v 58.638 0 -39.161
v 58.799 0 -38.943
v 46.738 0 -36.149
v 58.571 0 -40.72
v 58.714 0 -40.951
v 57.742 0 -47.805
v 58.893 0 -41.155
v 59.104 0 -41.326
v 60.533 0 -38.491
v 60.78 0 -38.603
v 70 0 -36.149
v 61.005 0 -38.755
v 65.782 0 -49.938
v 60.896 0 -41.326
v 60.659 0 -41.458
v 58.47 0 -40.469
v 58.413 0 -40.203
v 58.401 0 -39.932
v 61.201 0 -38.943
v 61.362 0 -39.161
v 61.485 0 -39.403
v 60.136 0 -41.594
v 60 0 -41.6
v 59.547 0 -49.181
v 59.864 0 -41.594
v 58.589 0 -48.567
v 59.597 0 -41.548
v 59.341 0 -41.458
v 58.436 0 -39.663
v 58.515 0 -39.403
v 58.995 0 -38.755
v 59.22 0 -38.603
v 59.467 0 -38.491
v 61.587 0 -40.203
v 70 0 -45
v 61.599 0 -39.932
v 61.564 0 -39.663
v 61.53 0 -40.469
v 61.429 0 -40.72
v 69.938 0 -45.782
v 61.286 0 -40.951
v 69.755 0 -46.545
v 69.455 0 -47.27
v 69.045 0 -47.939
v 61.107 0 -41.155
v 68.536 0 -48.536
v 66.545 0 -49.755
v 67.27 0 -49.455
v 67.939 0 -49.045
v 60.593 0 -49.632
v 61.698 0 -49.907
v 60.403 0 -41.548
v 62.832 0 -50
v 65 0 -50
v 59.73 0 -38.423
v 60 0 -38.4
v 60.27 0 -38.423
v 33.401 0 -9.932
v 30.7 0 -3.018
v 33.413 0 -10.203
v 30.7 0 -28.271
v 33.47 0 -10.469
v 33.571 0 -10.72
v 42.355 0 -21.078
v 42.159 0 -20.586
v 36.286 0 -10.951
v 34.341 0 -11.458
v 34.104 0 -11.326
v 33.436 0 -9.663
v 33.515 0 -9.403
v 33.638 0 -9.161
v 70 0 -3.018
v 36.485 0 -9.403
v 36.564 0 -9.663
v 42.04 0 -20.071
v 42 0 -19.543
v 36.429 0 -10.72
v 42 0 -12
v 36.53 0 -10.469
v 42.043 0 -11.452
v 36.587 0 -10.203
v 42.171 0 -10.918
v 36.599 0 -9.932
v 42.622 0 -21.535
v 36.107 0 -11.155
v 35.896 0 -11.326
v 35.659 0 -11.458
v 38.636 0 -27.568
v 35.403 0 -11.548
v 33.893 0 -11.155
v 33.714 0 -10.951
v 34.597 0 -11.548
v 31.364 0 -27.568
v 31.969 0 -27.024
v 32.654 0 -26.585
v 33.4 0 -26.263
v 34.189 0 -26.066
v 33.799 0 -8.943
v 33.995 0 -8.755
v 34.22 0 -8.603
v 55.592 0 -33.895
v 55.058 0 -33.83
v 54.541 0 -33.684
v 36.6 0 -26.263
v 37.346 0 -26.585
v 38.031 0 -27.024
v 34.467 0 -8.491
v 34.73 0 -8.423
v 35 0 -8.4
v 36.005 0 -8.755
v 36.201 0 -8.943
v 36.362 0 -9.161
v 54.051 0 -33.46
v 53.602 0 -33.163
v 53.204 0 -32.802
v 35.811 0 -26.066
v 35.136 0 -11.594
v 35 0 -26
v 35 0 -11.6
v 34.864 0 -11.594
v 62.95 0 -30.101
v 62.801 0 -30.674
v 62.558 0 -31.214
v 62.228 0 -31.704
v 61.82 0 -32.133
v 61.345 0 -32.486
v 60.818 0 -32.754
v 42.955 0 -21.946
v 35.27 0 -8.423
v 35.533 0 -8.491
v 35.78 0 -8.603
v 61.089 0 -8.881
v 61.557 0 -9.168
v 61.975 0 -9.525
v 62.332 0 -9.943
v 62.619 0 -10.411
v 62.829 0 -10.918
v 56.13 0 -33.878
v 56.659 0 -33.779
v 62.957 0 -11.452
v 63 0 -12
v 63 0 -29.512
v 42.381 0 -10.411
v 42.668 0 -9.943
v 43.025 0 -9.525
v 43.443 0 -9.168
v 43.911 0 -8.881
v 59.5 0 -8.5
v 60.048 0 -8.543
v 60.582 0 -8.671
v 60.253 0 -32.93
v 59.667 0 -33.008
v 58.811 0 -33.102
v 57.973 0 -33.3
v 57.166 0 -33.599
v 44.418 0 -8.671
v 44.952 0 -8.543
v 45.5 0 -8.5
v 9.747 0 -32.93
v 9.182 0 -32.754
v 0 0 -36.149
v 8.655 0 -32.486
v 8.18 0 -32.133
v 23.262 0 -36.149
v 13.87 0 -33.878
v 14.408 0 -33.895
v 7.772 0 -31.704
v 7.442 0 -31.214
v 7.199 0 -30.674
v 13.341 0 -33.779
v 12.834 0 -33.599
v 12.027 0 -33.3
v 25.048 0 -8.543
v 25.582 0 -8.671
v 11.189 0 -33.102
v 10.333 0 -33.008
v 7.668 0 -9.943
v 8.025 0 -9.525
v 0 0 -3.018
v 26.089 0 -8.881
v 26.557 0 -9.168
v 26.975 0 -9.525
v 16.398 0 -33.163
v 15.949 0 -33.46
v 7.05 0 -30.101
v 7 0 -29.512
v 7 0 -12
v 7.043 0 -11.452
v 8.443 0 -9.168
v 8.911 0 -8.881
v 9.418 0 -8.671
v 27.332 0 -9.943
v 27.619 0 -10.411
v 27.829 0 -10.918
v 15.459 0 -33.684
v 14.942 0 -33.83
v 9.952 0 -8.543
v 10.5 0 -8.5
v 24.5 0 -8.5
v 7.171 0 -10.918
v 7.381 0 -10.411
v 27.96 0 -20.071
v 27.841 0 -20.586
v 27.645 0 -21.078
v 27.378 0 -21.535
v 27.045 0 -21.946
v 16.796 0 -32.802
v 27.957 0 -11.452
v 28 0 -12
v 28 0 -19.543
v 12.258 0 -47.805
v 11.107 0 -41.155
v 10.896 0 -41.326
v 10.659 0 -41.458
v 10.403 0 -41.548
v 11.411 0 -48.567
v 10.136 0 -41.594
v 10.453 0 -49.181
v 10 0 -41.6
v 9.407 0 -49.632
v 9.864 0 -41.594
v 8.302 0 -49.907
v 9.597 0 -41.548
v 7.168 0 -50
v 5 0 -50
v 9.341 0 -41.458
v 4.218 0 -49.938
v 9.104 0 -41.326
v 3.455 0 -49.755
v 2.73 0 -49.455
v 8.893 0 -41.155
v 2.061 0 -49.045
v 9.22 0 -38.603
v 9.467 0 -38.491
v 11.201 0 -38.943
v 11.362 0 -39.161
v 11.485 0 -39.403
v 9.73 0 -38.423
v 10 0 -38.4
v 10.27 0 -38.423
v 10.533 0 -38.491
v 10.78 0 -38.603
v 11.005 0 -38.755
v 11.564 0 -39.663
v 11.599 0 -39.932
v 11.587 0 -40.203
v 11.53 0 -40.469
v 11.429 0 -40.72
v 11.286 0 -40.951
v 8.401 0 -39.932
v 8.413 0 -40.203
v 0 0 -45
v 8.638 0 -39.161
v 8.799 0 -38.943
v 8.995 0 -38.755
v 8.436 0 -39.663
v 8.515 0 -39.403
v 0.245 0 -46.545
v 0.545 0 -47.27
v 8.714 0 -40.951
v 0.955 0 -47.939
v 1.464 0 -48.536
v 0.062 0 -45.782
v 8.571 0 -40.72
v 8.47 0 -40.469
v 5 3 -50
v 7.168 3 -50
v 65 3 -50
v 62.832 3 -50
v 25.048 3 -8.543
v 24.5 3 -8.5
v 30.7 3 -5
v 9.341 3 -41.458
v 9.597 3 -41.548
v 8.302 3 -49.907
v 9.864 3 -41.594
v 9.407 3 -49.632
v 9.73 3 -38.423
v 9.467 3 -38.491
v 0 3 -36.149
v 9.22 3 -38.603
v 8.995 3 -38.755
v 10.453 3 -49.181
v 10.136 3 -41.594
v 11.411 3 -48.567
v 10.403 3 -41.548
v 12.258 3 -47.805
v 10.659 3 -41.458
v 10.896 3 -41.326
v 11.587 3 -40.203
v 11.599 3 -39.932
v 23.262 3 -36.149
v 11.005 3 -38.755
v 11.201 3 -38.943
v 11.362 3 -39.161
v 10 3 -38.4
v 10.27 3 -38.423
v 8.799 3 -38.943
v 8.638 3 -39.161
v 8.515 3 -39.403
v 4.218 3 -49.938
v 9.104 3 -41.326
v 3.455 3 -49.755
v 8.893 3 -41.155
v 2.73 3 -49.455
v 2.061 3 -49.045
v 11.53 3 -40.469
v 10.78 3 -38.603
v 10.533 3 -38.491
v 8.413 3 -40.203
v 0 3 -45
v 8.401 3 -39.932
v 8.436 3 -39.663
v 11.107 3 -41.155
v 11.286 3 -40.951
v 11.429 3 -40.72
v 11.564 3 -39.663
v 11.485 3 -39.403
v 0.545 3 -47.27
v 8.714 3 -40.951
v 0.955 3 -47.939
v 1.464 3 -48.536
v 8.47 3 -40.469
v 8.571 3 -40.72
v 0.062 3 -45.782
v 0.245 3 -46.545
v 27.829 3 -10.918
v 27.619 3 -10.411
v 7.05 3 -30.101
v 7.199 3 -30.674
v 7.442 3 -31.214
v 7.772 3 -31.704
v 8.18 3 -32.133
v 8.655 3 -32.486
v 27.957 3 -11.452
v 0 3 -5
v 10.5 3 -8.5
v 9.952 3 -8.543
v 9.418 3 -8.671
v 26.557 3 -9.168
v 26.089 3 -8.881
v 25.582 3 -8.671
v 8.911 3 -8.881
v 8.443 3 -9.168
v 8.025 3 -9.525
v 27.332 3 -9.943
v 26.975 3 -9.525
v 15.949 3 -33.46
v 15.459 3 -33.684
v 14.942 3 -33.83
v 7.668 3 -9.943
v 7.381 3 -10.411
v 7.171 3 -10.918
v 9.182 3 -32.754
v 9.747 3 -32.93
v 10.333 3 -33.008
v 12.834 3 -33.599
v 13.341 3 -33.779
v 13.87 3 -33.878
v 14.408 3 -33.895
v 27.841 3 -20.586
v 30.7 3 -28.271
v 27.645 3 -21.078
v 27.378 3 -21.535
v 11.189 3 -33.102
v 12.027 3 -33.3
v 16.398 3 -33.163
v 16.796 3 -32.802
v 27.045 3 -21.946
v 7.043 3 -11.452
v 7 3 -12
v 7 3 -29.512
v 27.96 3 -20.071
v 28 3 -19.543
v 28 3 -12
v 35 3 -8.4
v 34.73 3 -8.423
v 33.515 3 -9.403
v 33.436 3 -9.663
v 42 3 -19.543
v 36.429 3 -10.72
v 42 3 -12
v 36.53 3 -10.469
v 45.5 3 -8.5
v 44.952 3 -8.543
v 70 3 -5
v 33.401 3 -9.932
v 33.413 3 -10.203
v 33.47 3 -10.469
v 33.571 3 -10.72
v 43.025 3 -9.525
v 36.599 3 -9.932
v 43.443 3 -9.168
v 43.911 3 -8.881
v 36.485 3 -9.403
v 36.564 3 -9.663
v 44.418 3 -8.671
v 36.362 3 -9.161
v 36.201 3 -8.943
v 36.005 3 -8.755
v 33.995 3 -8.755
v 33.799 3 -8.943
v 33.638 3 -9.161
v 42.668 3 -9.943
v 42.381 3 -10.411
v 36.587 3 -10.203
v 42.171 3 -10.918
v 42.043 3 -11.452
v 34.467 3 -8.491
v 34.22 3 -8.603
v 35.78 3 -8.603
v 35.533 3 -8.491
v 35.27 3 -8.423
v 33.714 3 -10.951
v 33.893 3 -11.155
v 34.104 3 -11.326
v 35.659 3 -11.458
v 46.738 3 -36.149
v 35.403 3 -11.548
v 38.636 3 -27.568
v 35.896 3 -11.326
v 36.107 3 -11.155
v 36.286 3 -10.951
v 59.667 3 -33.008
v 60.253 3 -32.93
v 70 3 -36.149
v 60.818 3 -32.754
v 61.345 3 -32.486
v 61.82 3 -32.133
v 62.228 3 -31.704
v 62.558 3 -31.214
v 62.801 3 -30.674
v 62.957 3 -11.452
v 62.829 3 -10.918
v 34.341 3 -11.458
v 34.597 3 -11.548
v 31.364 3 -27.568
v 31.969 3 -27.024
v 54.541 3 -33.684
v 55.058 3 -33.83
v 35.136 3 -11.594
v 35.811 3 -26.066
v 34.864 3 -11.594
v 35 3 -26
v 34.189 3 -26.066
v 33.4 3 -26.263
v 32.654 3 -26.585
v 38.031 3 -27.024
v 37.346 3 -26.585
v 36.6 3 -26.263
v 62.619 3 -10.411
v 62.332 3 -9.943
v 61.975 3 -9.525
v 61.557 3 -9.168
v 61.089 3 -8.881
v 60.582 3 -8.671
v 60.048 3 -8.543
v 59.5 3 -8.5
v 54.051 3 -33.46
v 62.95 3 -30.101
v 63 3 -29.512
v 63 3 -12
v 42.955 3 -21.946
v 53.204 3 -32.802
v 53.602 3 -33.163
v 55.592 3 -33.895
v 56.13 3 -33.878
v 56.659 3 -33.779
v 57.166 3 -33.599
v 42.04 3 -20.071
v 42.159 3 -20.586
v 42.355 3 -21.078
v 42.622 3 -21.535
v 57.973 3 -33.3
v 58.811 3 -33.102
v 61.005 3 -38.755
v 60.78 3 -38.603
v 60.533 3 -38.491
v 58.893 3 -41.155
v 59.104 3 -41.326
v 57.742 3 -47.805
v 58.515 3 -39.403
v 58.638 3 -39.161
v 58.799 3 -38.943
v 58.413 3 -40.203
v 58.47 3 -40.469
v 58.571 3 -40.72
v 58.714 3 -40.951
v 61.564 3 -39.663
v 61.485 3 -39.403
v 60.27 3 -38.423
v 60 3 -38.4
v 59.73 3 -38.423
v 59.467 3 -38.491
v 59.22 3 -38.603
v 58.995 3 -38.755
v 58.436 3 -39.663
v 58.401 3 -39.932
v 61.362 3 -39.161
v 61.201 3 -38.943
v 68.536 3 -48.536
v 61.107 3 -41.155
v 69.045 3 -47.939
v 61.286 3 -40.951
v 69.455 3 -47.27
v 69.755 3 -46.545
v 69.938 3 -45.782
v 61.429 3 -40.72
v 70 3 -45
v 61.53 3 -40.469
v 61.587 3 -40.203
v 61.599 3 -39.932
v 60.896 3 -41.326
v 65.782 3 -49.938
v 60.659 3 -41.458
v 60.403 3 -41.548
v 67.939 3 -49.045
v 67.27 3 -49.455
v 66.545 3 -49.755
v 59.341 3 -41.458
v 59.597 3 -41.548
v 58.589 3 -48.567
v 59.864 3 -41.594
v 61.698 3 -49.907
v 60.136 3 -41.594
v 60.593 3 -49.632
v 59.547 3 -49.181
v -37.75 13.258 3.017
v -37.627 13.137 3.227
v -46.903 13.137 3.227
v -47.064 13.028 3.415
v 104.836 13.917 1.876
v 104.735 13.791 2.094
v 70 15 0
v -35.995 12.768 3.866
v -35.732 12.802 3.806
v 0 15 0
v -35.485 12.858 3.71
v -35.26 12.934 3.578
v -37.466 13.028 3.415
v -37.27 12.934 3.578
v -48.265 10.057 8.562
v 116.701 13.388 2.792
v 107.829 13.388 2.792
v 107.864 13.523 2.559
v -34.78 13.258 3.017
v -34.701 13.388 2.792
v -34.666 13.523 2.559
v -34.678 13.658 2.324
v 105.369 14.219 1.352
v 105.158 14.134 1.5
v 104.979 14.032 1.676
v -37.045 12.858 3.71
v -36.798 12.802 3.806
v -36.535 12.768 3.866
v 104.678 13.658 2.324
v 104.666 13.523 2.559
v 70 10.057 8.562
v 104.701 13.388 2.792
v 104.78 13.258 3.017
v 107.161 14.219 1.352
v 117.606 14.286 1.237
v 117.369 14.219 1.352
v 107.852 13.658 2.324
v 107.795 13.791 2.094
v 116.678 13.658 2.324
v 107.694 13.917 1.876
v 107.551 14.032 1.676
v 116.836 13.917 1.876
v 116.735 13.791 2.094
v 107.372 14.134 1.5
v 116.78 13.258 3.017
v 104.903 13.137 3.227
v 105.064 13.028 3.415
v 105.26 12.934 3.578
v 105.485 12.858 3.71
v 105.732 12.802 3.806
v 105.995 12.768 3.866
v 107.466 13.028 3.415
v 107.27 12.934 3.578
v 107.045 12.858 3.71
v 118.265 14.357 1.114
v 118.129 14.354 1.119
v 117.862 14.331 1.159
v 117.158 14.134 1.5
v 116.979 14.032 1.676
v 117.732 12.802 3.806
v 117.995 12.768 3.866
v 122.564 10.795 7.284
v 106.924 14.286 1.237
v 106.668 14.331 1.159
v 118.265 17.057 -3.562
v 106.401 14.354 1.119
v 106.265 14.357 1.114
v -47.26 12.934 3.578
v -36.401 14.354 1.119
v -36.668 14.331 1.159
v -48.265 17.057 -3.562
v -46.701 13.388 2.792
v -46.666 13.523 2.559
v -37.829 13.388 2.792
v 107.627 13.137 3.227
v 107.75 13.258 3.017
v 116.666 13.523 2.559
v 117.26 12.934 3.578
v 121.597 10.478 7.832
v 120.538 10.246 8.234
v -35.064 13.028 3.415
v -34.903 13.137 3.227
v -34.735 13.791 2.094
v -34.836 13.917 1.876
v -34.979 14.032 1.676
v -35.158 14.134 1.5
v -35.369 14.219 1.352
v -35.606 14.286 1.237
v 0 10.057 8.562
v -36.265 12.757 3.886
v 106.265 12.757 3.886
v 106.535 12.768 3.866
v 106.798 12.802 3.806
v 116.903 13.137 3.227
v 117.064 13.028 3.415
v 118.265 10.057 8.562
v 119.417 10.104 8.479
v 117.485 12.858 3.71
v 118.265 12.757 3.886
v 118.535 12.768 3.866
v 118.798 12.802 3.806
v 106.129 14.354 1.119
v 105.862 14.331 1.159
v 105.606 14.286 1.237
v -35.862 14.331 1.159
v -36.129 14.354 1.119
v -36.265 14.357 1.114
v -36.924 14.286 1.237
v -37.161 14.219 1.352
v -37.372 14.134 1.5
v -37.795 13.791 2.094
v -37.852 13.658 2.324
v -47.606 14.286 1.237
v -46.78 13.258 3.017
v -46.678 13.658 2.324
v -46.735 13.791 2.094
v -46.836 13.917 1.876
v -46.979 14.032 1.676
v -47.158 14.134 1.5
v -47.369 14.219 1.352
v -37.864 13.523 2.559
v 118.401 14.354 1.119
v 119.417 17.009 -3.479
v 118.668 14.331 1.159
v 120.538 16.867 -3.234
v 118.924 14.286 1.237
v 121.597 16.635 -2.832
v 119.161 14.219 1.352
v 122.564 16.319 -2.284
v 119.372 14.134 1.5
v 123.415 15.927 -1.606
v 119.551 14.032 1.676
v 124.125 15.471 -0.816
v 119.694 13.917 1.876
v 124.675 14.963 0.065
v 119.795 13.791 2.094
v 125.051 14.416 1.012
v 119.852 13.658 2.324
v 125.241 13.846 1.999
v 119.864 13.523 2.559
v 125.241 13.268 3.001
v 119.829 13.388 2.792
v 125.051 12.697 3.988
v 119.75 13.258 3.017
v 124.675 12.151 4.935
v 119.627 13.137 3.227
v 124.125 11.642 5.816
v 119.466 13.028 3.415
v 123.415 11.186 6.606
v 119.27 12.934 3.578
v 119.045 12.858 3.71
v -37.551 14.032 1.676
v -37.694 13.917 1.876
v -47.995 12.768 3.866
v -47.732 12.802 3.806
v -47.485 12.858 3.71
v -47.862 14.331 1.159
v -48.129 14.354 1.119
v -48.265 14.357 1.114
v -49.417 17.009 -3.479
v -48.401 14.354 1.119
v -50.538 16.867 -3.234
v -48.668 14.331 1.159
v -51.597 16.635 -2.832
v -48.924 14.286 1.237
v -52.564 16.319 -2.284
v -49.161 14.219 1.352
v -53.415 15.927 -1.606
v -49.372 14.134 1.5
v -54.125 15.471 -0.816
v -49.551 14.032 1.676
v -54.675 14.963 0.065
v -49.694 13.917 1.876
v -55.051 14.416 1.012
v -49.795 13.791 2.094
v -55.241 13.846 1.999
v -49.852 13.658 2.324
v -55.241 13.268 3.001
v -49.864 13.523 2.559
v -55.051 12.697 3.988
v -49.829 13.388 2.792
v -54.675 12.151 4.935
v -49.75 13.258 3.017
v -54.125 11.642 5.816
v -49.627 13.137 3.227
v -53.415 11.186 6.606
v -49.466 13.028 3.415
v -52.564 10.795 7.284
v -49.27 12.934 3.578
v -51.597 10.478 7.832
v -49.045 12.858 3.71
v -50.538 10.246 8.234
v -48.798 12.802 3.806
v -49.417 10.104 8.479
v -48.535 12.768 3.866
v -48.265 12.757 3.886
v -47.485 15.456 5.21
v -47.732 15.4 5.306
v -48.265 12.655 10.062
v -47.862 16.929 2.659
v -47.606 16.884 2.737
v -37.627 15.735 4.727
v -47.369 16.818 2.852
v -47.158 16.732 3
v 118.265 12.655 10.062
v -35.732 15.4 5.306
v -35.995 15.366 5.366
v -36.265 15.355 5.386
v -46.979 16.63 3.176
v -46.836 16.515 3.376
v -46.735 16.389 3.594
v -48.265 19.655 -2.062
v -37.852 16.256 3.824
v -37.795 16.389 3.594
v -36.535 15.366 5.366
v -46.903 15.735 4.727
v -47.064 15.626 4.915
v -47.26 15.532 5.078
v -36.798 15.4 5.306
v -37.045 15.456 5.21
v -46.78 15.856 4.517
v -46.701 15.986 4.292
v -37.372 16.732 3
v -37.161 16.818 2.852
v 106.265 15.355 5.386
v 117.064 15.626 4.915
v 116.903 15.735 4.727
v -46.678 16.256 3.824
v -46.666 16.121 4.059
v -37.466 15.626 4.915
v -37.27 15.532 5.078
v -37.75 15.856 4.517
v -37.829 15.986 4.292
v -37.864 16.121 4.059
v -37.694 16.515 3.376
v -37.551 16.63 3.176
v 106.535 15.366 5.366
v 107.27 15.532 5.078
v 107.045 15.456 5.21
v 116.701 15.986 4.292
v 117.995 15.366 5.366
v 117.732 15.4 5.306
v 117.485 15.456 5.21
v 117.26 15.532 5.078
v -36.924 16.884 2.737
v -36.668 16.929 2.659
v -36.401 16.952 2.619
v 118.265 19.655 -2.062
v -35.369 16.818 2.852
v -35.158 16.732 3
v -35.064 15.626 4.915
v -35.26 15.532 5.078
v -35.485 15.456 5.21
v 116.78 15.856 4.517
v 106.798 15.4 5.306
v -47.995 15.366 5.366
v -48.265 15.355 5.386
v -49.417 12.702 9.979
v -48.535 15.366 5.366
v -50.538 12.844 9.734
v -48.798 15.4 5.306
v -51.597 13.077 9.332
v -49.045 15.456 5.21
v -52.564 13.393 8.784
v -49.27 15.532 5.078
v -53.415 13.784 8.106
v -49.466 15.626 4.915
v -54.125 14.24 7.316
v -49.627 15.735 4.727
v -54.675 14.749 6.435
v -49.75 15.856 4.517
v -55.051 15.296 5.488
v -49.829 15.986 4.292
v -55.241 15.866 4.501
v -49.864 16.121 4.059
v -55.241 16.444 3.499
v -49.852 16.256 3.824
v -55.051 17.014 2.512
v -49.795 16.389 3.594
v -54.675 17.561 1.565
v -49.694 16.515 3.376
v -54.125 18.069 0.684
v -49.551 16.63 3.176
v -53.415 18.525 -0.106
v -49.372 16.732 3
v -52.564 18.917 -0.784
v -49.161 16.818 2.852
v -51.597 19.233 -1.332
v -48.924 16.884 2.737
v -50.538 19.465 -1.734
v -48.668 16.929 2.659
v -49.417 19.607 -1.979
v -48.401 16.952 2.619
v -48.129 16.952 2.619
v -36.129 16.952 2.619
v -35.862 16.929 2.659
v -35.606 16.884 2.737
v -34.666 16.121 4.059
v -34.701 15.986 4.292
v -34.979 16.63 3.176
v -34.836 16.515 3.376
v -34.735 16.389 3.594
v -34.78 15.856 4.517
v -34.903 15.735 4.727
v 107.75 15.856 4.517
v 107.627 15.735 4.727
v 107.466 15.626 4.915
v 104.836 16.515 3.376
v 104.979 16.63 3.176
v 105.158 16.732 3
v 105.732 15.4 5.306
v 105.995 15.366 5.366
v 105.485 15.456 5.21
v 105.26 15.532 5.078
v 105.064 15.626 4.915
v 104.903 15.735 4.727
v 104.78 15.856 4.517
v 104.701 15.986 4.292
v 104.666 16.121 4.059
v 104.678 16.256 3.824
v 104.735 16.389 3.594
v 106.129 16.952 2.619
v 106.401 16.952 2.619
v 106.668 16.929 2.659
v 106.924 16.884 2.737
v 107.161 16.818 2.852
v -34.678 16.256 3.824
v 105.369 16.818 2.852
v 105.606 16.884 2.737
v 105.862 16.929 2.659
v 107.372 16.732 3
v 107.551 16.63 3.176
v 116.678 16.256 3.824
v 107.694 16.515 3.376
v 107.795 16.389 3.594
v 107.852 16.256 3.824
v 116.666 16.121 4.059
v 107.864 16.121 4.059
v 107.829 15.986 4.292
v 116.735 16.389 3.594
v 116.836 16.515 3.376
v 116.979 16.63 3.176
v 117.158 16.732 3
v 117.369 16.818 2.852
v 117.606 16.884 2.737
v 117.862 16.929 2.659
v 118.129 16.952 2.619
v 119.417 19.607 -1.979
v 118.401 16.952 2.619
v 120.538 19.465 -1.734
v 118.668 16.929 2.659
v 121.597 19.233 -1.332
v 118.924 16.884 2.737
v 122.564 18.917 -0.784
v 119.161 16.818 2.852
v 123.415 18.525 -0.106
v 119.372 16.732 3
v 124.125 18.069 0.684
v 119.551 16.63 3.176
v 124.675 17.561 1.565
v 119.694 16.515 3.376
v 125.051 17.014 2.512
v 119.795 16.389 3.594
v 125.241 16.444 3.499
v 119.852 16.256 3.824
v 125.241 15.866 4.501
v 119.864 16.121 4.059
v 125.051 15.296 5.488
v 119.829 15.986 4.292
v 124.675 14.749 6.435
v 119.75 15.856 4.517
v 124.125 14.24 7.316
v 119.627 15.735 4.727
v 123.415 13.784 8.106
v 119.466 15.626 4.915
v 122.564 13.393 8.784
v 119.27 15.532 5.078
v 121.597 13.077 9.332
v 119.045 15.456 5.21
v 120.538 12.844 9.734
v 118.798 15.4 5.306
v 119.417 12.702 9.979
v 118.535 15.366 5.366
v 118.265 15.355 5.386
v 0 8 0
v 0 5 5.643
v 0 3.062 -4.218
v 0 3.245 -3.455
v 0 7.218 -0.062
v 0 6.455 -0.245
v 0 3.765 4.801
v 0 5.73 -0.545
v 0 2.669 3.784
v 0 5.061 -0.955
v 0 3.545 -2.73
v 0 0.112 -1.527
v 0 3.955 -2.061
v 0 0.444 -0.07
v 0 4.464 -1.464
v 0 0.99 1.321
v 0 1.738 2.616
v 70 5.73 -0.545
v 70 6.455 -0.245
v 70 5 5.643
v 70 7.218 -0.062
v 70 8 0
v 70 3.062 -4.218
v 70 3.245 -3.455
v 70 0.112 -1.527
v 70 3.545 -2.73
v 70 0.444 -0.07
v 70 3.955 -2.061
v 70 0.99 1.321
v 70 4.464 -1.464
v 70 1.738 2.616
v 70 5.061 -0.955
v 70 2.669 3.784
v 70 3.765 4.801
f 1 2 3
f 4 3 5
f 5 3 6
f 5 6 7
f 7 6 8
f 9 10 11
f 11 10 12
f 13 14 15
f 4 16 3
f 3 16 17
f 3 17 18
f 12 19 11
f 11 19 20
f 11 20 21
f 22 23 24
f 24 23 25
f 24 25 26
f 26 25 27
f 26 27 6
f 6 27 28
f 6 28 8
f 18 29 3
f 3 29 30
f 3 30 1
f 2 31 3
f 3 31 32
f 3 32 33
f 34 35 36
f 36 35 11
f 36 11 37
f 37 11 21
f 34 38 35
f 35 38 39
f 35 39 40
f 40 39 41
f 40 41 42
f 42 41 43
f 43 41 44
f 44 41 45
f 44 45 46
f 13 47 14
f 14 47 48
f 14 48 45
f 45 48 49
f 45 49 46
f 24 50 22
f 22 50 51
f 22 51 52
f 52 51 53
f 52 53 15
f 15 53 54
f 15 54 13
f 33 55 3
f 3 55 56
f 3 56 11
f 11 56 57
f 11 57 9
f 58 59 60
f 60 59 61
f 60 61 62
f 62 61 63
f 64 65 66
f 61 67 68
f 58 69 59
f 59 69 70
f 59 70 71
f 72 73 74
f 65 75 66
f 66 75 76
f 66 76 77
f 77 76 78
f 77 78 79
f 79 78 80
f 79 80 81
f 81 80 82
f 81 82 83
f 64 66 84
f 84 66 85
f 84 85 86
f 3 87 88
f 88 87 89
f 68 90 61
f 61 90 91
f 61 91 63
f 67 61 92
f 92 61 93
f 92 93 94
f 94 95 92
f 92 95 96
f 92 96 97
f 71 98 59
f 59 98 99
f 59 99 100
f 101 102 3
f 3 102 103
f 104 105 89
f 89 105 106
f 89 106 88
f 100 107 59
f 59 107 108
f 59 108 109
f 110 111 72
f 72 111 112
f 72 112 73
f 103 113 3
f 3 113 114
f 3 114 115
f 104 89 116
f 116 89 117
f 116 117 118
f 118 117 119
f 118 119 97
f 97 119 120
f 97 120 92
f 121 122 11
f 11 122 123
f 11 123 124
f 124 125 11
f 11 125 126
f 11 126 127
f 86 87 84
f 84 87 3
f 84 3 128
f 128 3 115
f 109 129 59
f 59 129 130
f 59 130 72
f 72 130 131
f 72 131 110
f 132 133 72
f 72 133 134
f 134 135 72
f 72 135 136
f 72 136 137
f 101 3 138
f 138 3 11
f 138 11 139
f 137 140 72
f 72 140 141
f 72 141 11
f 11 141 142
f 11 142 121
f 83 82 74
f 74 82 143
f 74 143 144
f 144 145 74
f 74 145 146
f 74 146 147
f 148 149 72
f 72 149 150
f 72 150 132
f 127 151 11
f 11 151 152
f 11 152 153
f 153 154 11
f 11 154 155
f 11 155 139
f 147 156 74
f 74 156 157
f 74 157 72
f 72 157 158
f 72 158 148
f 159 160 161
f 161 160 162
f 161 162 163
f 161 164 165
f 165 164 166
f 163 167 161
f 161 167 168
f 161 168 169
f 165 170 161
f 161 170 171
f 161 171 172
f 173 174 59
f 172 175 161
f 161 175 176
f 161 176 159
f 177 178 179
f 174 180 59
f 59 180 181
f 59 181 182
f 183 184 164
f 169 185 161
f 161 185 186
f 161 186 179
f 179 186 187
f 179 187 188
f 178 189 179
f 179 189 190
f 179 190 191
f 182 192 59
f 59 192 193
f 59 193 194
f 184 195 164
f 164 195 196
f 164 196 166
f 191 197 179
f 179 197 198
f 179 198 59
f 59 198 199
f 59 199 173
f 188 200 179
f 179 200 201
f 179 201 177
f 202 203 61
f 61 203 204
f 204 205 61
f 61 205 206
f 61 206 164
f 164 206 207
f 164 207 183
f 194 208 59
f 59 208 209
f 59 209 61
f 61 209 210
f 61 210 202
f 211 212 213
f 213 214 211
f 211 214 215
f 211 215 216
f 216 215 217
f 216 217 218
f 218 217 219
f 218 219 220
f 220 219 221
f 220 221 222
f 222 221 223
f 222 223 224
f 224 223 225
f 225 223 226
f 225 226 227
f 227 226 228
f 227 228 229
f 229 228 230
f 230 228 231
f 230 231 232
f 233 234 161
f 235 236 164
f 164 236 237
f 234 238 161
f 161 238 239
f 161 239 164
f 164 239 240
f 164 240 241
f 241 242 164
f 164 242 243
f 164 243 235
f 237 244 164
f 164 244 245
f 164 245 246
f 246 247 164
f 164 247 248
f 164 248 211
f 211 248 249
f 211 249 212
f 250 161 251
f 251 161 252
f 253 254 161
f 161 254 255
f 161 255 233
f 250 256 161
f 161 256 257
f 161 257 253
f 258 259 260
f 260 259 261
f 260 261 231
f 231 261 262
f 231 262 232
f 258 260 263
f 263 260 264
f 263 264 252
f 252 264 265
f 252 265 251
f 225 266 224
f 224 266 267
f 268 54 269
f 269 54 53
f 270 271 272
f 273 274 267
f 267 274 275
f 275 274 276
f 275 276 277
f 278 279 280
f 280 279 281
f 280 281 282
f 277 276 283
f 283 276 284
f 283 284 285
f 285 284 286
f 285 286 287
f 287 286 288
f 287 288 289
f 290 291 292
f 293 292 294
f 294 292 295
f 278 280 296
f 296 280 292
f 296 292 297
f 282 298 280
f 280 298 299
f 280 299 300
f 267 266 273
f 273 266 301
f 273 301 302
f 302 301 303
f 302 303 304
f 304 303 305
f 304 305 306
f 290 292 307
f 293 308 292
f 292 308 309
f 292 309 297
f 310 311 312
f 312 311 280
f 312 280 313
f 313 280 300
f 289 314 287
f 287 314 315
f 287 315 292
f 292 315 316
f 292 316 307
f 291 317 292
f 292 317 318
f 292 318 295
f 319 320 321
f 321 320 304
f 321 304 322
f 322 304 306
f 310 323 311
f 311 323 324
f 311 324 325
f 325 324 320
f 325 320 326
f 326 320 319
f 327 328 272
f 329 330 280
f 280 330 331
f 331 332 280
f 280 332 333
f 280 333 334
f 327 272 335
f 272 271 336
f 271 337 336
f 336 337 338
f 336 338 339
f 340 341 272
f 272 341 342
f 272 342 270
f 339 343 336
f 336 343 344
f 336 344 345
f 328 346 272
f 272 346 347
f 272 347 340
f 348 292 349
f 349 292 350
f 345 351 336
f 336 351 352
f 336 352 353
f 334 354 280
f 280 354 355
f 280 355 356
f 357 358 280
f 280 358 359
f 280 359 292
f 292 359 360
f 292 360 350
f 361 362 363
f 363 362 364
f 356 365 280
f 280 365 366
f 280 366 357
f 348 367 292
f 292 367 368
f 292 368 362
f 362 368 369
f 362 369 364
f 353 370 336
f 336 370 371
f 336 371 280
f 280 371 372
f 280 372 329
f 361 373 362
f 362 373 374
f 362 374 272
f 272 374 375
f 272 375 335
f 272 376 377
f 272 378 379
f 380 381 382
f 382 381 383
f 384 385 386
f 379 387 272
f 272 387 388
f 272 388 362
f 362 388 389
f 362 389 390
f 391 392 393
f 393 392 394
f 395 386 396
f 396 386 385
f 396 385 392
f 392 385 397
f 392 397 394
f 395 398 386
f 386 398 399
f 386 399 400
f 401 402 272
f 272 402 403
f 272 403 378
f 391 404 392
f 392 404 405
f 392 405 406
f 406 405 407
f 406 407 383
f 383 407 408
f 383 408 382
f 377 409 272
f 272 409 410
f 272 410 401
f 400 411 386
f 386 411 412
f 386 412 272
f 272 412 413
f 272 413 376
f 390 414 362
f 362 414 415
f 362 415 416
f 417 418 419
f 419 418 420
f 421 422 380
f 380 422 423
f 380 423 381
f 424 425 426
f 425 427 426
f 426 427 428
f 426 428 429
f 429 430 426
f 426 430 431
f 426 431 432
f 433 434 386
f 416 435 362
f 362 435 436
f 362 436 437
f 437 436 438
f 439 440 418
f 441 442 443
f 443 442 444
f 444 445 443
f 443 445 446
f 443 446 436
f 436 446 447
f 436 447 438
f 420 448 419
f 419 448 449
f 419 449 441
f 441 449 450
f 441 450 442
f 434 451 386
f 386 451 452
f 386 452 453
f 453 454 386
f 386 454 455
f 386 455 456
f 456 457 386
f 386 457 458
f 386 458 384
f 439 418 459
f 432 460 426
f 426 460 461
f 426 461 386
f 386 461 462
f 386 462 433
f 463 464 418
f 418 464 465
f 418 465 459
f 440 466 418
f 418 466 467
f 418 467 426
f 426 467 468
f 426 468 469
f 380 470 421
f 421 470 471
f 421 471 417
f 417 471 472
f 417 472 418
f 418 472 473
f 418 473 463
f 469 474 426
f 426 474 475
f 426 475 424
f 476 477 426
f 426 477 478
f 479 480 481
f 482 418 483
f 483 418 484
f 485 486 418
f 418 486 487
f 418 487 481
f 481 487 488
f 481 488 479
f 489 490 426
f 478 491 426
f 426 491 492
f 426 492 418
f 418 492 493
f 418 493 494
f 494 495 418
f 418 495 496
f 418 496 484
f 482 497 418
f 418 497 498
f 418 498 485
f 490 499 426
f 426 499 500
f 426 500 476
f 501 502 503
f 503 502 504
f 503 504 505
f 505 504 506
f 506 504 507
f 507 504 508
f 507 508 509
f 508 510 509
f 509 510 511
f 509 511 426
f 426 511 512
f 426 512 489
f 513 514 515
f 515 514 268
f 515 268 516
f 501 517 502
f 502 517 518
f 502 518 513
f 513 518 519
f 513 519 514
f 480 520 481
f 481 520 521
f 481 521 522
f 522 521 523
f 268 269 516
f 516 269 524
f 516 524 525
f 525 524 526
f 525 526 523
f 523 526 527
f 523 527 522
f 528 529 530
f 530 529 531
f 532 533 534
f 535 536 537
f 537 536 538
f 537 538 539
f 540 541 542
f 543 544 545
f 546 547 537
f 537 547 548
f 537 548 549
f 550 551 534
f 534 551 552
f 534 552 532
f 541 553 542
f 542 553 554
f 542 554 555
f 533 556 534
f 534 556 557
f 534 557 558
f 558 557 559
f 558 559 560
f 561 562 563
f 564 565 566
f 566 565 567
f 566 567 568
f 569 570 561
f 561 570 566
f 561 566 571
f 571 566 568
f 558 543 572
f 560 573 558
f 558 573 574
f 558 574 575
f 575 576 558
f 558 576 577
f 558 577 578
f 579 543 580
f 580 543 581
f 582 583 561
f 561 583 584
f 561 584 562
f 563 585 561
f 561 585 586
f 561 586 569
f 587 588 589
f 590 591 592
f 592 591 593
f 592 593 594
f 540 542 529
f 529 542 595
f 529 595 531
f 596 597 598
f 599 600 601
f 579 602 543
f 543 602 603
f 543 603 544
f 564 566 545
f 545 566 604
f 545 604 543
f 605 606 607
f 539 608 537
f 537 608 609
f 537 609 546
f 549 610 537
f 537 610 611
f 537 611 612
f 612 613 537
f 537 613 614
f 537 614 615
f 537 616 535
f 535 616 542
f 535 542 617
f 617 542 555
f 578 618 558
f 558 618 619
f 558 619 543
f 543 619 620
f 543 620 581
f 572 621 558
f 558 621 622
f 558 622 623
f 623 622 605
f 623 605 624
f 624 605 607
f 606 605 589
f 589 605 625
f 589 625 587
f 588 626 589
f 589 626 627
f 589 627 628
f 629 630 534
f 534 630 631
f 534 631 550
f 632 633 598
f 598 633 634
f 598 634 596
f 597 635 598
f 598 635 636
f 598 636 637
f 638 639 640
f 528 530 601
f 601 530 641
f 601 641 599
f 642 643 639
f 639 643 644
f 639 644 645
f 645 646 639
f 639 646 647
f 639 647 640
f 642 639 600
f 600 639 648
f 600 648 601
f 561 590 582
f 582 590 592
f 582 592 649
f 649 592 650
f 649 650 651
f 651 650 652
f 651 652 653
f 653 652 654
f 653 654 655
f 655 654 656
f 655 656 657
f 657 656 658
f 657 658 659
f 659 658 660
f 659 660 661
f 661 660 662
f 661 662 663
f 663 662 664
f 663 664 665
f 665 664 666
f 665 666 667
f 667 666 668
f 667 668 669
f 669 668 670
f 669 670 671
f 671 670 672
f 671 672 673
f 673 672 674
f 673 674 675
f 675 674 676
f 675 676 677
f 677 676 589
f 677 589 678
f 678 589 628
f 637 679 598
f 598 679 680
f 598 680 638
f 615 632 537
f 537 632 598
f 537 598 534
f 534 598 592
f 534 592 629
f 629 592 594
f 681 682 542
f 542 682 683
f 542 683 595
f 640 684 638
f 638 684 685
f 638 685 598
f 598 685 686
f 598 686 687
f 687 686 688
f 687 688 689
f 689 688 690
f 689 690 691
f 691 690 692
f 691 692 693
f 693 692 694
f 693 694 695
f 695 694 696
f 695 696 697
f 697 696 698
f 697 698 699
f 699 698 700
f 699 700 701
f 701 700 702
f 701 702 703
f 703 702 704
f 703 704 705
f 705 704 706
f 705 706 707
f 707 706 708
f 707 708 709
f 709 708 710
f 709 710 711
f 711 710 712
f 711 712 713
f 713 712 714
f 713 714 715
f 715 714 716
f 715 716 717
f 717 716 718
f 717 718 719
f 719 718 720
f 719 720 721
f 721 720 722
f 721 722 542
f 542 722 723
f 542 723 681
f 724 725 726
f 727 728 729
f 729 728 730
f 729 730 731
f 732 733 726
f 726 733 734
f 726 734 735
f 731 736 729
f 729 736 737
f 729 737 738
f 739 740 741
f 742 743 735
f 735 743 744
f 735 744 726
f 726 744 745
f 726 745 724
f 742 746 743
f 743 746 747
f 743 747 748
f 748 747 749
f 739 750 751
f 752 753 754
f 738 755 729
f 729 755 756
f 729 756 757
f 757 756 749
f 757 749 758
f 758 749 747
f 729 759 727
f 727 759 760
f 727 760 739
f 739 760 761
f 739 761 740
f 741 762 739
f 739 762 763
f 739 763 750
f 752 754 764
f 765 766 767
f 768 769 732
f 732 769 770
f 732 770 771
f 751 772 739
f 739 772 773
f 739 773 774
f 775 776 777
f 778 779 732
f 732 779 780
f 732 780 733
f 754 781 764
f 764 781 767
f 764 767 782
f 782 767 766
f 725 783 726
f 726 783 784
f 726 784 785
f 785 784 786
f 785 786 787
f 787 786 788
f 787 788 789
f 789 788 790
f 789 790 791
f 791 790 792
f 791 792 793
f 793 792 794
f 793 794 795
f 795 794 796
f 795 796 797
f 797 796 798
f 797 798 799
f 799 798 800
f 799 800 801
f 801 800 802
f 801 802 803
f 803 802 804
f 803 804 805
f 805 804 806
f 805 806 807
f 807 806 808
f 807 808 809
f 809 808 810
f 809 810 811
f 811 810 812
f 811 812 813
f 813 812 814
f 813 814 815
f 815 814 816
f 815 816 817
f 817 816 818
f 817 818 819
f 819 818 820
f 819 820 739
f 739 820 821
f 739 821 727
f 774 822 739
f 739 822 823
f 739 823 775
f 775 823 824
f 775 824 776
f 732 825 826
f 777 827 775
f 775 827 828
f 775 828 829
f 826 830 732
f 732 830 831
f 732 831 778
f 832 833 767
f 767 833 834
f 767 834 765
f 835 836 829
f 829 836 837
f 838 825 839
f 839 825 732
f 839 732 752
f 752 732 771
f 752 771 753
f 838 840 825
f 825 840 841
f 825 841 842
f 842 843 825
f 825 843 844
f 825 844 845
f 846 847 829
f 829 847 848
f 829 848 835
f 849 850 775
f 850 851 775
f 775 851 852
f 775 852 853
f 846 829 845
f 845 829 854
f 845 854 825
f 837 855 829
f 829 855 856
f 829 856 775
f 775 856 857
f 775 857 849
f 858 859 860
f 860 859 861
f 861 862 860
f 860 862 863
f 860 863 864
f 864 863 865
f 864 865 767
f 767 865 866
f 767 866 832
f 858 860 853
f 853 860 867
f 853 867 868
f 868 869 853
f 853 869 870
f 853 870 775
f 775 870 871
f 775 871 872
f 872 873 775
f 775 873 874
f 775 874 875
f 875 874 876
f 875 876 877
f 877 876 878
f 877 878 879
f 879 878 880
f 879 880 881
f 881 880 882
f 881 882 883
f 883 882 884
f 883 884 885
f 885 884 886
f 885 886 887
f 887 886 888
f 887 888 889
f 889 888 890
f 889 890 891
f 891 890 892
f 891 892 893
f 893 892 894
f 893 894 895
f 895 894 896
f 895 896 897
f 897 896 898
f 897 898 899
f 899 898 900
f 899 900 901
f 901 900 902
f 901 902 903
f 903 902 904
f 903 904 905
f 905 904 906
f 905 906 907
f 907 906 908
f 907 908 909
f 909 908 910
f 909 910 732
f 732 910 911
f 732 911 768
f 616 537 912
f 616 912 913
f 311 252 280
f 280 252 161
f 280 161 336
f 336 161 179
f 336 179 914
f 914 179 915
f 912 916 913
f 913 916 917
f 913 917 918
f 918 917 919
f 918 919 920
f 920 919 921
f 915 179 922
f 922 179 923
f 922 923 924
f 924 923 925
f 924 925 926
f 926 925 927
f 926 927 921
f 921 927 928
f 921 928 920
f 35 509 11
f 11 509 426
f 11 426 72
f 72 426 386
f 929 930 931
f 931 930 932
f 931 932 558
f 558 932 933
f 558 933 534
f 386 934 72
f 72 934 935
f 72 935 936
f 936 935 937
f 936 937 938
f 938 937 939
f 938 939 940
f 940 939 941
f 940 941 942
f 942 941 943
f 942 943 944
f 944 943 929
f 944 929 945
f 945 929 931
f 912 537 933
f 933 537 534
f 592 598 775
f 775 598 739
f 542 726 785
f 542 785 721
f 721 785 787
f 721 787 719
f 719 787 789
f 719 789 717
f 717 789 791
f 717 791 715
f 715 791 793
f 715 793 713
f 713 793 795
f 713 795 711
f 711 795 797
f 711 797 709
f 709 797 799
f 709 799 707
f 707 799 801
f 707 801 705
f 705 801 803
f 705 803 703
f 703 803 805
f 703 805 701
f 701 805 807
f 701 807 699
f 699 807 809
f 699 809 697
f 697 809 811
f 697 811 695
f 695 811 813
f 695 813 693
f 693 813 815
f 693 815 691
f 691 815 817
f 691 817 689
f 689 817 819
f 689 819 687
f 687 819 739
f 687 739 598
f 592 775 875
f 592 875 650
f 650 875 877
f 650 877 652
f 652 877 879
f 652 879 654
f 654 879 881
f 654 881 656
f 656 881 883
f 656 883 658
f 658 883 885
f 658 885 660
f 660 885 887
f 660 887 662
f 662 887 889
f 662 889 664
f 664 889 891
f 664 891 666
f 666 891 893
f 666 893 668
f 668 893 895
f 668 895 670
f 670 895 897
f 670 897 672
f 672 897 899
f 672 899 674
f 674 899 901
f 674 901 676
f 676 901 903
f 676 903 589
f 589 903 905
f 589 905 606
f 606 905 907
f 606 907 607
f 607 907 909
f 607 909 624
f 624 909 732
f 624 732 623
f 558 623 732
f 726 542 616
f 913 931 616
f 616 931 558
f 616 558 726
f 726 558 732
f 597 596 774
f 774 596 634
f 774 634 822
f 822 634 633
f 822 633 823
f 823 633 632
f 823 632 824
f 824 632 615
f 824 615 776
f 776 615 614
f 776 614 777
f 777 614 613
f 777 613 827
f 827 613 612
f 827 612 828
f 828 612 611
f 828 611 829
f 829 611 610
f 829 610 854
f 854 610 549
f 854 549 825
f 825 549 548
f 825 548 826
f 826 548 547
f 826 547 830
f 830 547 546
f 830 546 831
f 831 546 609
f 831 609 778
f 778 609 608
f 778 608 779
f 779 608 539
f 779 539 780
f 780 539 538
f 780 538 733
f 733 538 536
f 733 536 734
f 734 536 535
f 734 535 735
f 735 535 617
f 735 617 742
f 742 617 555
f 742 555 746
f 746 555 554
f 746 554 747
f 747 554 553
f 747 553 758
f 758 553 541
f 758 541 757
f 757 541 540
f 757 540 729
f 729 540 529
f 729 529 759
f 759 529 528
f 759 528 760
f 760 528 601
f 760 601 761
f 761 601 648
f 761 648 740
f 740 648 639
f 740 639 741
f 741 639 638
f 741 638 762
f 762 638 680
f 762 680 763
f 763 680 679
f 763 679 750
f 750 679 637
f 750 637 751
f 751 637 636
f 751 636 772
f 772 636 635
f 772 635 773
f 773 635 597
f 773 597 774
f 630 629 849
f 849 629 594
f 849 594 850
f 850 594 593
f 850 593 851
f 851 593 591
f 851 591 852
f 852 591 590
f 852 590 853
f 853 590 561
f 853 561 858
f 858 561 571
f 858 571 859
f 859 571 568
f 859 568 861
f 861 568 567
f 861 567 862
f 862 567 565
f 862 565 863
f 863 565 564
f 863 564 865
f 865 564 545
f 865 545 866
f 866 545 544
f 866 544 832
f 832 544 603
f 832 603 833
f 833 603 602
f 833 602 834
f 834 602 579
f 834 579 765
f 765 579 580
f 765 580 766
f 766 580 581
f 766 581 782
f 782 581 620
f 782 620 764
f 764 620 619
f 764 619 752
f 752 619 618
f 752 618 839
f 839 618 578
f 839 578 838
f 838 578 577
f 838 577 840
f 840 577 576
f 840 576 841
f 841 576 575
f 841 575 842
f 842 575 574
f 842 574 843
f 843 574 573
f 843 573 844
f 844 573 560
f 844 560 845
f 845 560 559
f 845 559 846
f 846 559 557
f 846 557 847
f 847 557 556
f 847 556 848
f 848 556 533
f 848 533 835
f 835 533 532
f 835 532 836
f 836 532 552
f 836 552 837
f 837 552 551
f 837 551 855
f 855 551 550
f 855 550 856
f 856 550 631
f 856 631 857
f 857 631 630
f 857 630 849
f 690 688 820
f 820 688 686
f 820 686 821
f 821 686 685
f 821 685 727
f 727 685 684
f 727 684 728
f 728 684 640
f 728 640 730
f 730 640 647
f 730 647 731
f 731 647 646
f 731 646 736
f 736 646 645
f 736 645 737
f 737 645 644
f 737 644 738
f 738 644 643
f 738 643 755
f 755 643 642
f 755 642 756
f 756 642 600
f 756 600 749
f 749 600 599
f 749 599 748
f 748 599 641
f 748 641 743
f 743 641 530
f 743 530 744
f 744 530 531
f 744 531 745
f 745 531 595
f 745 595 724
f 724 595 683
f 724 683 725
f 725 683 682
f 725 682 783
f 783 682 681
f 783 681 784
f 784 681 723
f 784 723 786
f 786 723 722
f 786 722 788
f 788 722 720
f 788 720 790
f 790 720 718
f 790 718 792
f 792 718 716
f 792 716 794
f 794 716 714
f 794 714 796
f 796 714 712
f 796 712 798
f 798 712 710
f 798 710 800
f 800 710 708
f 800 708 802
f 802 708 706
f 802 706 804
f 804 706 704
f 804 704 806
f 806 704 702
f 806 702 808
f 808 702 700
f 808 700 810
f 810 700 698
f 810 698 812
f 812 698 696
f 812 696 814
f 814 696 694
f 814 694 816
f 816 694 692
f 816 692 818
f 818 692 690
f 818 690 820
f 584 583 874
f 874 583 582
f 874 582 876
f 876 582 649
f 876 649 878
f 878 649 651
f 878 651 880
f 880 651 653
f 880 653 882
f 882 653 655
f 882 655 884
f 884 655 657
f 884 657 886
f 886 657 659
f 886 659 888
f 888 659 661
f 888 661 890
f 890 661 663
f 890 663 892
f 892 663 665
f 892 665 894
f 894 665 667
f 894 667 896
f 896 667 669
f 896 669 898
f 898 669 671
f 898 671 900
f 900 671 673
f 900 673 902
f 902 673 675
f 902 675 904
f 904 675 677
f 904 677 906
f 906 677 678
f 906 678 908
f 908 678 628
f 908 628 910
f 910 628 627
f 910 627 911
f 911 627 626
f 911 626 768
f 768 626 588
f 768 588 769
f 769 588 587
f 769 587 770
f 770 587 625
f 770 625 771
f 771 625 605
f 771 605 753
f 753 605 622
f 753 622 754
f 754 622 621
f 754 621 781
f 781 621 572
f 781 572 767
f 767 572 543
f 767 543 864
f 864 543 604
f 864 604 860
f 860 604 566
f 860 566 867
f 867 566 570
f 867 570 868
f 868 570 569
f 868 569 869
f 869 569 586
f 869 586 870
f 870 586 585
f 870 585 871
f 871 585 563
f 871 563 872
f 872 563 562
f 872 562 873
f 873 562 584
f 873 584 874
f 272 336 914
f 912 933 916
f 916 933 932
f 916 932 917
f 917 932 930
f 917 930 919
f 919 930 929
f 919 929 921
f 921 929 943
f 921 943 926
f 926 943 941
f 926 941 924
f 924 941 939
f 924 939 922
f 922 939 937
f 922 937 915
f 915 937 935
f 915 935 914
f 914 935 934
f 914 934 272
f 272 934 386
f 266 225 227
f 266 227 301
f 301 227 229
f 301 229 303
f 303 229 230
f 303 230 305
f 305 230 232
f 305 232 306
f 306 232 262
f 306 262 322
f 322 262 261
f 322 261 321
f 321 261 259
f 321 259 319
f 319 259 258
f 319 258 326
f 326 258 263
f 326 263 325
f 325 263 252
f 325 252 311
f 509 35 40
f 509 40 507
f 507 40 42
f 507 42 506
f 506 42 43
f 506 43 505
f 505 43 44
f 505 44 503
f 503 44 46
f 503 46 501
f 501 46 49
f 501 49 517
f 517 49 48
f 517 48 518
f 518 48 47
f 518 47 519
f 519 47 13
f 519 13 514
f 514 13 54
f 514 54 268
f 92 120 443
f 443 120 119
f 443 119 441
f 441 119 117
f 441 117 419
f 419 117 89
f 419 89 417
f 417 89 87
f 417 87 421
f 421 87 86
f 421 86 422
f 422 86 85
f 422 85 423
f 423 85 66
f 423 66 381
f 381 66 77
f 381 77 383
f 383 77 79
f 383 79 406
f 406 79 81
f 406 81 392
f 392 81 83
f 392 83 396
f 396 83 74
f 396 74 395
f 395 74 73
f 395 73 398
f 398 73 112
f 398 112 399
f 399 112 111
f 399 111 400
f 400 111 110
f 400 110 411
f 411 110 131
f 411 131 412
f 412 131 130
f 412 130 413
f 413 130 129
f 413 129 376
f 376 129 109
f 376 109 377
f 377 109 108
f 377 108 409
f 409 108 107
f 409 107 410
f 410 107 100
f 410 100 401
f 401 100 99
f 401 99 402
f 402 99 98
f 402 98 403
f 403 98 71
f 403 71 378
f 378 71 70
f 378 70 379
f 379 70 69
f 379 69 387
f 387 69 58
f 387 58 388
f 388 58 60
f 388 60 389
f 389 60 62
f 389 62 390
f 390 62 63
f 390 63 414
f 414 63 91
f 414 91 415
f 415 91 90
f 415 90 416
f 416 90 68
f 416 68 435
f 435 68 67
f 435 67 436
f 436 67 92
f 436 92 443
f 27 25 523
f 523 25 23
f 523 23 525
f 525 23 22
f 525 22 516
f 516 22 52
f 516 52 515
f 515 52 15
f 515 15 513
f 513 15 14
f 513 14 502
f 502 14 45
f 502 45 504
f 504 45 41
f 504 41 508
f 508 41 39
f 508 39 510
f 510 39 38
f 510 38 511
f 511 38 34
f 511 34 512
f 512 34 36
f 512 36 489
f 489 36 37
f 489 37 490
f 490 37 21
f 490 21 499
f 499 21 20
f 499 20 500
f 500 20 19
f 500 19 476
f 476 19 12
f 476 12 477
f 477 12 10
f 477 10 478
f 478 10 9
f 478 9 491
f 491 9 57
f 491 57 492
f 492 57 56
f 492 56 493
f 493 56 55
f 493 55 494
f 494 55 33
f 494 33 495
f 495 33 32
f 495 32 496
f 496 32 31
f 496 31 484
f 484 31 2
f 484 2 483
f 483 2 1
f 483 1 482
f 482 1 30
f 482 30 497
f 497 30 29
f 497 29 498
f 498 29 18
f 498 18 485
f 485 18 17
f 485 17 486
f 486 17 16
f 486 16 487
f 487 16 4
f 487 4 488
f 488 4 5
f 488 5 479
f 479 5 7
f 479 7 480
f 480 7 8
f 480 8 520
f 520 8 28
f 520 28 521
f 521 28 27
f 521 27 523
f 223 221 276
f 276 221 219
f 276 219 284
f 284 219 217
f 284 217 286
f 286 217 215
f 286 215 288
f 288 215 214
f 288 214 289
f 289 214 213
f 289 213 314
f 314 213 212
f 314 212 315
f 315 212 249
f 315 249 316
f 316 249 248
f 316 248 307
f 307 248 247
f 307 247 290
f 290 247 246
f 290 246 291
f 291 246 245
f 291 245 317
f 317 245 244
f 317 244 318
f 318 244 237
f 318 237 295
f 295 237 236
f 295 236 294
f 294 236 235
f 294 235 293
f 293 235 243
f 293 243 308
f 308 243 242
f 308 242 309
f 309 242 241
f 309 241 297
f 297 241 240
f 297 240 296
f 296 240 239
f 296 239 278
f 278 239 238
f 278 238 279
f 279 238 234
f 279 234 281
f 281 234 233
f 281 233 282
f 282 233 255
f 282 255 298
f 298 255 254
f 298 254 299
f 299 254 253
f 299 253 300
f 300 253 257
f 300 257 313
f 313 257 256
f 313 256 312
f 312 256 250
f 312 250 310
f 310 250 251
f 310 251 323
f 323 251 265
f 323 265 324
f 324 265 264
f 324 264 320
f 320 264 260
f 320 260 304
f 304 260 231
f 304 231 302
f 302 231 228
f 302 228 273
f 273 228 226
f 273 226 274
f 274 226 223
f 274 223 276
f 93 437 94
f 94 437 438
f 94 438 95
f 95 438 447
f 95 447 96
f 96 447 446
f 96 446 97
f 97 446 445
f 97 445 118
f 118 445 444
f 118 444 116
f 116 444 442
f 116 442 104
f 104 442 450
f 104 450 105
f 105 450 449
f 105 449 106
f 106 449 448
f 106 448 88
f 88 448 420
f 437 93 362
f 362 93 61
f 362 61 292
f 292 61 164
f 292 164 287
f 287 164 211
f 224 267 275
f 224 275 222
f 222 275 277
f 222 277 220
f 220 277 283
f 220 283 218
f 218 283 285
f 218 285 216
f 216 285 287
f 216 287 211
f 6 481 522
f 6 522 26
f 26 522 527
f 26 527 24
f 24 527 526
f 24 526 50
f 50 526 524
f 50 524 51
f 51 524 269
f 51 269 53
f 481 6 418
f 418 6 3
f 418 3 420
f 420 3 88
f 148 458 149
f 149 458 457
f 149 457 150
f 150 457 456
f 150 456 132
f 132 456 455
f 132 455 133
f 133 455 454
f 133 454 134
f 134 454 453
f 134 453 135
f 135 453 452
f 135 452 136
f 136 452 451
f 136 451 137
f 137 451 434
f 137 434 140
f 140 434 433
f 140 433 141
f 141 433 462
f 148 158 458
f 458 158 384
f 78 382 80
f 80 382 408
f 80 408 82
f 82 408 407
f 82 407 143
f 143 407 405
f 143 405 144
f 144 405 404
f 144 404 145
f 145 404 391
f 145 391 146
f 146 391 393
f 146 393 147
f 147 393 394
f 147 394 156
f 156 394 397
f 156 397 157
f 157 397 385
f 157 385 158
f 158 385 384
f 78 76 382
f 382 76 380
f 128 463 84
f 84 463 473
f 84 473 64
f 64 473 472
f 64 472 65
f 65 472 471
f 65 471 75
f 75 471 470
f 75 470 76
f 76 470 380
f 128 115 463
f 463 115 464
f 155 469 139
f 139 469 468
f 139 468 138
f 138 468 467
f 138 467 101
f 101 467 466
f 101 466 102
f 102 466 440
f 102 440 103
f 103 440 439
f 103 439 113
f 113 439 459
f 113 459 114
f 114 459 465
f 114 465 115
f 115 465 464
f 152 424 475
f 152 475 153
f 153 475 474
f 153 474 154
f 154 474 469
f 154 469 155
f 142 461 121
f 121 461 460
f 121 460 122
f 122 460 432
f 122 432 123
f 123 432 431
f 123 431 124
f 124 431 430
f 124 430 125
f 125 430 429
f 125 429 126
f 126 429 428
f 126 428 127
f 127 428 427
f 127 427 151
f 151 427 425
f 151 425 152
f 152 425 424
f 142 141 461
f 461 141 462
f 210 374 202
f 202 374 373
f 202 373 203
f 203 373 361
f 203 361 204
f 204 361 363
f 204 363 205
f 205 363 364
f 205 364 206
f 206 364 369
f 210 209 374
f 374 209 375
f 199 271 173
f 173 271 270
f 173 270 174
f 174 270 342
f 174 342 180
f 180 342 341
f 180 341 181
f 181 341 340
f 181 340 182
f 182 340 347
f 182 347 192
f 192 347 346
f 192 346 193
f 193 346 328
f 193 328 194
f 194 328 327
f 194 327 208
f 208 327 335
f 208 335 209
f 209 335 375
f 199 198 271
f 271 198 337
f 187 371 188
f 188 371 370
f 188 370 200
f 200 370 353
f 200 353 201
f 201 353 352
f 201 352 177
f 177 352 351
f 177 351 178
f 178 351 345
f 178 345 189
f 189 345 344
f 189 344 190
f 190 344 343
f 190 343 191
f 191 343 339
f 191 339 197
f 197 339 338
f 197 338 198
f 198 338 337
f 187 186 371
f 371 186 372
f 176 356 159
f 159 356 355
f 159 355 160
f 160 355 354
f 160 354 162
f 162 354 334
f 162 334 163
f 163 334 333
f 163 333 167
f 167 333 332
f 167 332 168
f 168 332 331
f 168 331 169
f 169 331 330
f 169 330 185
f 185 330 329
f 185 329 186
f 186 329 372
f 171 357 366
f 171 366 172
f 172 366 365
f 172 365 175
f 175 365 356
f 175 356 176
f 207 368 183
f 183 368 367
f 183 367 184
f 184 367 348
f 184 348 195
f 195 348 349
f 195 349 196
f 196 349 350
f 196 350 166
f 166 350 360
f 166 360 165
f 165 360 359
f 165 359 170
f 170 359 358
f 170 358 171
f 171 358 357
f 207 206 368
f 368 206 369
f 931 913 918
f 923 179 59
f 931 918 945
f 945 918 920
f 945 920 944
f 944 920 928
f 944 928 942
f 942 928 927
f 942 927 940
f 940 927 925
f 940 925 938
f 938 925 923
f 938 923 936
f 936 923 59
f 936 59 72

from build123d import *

# Parameters (mm, degrees)
SKETCH_1_W          = 70
SKETCH_1_H          = 50
EXTRUDE_1_DEPTH     = 3
EXTRUDE_2_DEPTH     = 70
SKETCH_3_R          = 1.6
EXTRUDE_3_DEPTH     = 3
EXTRUDE_4_REACH     = 139.875
SKETCH_4_W          = 70
SKETCH_4_H          = 5.267949192
FILLET_1_R          = 5
SKETCH_5_W          = 70
SKETCH_5_H          = 28.866025404
CUT_EXTRUDE_1_DEPTH = 138.47436204
SKETCH_6_W          = 70
SKETCH_6_H          = 3
CUT_EXTRUDE_2_DEPTH = 133.365261865
FILLET_2_R          = 5
SKETCH_7_R          = 1.6
CUT_EXTRUDE_3_DEPTH = 10
CUT_EXTRUDE_4_DEPTH = 10
CUT_EXTRUDE_5_DEPTH = 136.899592623
FILLET_4_R          = 10


with BuildPart() as part:
    # 草图1 → 凸台-拉伸1 (new body)
    with BuildSketch(Plane(origin=(0, 0, 0), x_dir=(1, 0, 0), z_dir=(0, 1, 0))):
        with Locations((35, 25)):
            Rectangle(SKETCH_1_W, SKETCH_1_H)
    extrude(amount=EXTRUDE_1_DEPTH)

    # 草图2 → 凸台-拉伸2 (add)
    with BuildSketch(Plane.ZY):
        Polygon((0, 15), (-6.062177826, 18.5), (-4.562177826, 21.098076211), (4, 16.154700538), (4, 15), (4, 0), (0, 0), align=None)
    extrude(amount=-EXTRUDE_2_DEPTH)

    # 草图3 → 凸台-拉伸3 (add)
    with BuildSketch(Plane(origin=(0, 13.848076211, 7.995190528), x_dir=(1, 0, 0), z_dir=(0, 0.86602540378444, 0.49999999999999784))):
        with BuildLine():
            Line((-48.265, 11.613248654), (-36.265, 11.613248654))
            Line((-36.265, 11.613248654), (106.265, 11.613248654))
            Line((106.265, 11.613248654), (118.265, 11.613248654))
            ThreePointArc((118.265, 11.613248654), (125.265, 4.613248654), (118.265, -2.386751346))
            Line((118.265, -2.386751346), (106.265, -2.386751346))
            Line((106.265, -2.386751346), (-36.265, -2.386751346))
            Line((-36.265, -2.386751346), (-48.265, -2.386751346))
            ThreePointArc((-48.265, -2.386751346), (-55.265, 4.613248654), (-48.265, 11.613248654))
        make_face()
        with Locations(Location((-36.265, 4.613248654, 0), (0, 0, 270))):
            Circle(SKETCH_3_R, mode=Mode.SUBTRACT)
        with Locations(Location((106.265, 4.613248654, 0), (0, 0, 270))):
            Circle(SKETCH_3_R, mode=Mode.SUBTRACT)
        with Locations(Location((-48.265, 4.613248654, 0), (0, 0, 270))):
            Circle(SKETCH_3_R, mode=Mode.SUBTRACT)
        with Locations(Location((118.265, 4.613248654, 0), (0, 0, 270))):
            Circle(SKETCH_3_R, mode=Mode.SUBTRACT)
    extrude(amount=-EXTRUDE_3_DEPTH)

    # 凸台-拉伸4: up to this face of the body (flat: up to its plane)
    extrude_4_end = Plane(part.part.faces().sort_by_distance((35, 6.345299462, 4))[0])
    # 草图4 → 凸台-拉伸4 (add, up to the picked face)
    with BuildSketch(Plane(origin=(0, 11.25, 6.495190528), x_dir=(1, 0, 0), z_dir=(0, -0.8660254037844396, -0.4999999999999982)), mode=Mode.PRIVATE) as extrude_4_sk1:
        with Locations((35, -0.24722325)):
            Rectangle(SKETCH_4_W, SKETCH_4_H)
    extrude_4_tool1 = split(extrude(extrude_4_sk1.sketch, amount=EXTRUDE_4_REACH, mode=Mode.PRIVATE), bisect_by=extrude_4_end, keep=Keep.BOTH, mode=Mode.PRIVATE)
    add(extrude_4_tool1.solids().sort_by(Axis((35, 11.373612, 6.281089), (0, -0.8660254037844396, -0.4999999999999982)))[0])

    # 圆角1
    fillet_1_edges = [part.edges().sort_by_distance(p)[0] for p in [
        (35, 3, 0),
    ]]
    fillet(fillet_1_edges, radius=FILLET_1_R)

    # 草图5 → 切除-拉伸1 (cut, through all)
    with BuildSketch(Plane(origin=(0, -1.193375673, 2.066987298), x_dir=(1, 0, 0), z_dir=(-1.4881366732147052e-15, -0.49999999999999784, 0.8660254037844398))):
        with Locations((35, -10.566987298)):
            Rectangle(SKETCH_5_W, SKETCH_5_H)
    extrude(amount=CUT_EXTRUDE_1_DEPTH, mode=Mode.SUBTRACT)

    # 草图6 → 切除-拉伸2 (cut, through all)
    with BuildSketch(Plane(origin=(0, 5.806624327, -10.057368355), x_dir=(-1, 0, 0), z_dir=(0, 0.49999999999999784, -0.8660254037844398))):
        with Locations((-35, 14.490381057)):
            Rectangle(SKETCH_6_W, SKETCH_6_H)
    extrude(amount=CUT_EXTRUDE_2_DEPTH, mode=Mode.SUBTRACT)

    # 圆角2
    fillet_2_edges = [part.edges().sort_by_distance(p)[0] for p in [
        (0, 1.5, -50),
        (70, 1.5, -50),
    ]]
    fillet(fillet_2_edges, radius=FILLET_2_R)

    # 草图7 → 切除-拉伸3 (cut)
    with BuildSketch(Plane(origin=(0, 3, 0), x_dir=(1, 0, 0), z_dir=(0, 1, 0))):
        with Locations(Location((10, 40, 0), (0, 0, 270))):
            Circle(SKETCH_7_R)
        with Locations(Location((60, 40, 0), (0, 0, 270))):
            Circle(SKETCH_7_R)
        with Locations(Location((35, 10, 0), (0, 0, 270))):
            Circle(SKETCH_7_R)
    extrude(amount=-CUT_EXTRUDE_3_DEPTH, mode=Mode.SUBTRACT)

    # 草图8 → 切除-拉伸4 (cut)
    with BuildSketch(Plane(origin=(0, 3, 0), x_dir=(1, 0, 0), z_dir=(0, 1, 0))):
        with BuildLine():
            ThreePointArc((31.364314075, 27.567539097), (33.020392023, 26.408578406), (35, 26))
            Line((35, 26), (35, 50))
            Line((35, 50), (7.167691896, 50))
            ThreePointArc((7.167691896, 50), (9.939143063, 49.427990232), (12.257652191, 47.805445265))
            Line((12.257652191, 47.805445265), (31.364314075, 27.567539097))
        make_face()
        with BuildLine():
            Line((35, 50), (35, 26))
            ThreePointArc((35, 26), (36.979607977, 26.408578406), (38.635685925, 27.567539097))
            Line((38.635685925, 27.567539097), (57.742347809, 47.805445265))
            ThreePointArc((57.742347809, 47.805445265), (60.060856937, 49.427990232), (62.832308104, 50))
            Line((62.832308104, 50), (35, 50))
        make_face()
    extrude(amount=-CUT_EXTRUDE_4_DEPTH, mode=Mode.SUBTRACT)

    # 草图9 → 切除-拉伸5 (cut, through all)
    with BuildSketch(Plane(origin=(0, 3, 0), x_dir=(1, 0, 0), z_dir=(0, 1, 0))):
        with BuildLine():
            Line((7, 29.511911518), (7, 12))
            ThreePointArc((7, 12), (8.025126266, 9.525126266), (10.5, 8.5))
            Line((10.5, 8.5), (24.5, 8.5))
            ThreePointArc((24.5, 8.5), (26.974873734, 9.525126266), (28, 12))
            Line((28, 12), (28, 19.543118511))
            ThreePointArc((28, 19.543118511), (27.752493698, 20.835900295), (27.044980148, 21.945841143))
            Line((27.044980148, 21.945841143), (16.795925867, 32.801709118))
            ThreePointArc((16.795925867, 32.801709118), (14.941700749, 33.830146274), (12.833963813, 33.599324324))
            ThreePointArc((12.833963813, 33.599324324), (11.611017181, 33.187906075), (10.333333333, 33.007941012))
            ThreePointArc((10.333333333, 33.007941012), (7.966885974, 31.927140976), (7, 29.511911518))
        make_face()
        with BuildLine():
            Line((42.955019852, 21.945841143), (53.204074133, 32.801709118))
            ThreePointArc((53.204074133, 32.801709118), (55.058299251, 33.830146274), (57.166036187, 33.599324324))
            ThreePointArc((57.166036187, 33.599324324), (58.388982819, 33.187906075), (59.666666667, 33.007941012))
            ThreePointArc((59.666666667, 33.007941012), (62.033114026, 31.927140976), (63, 29.511911518))
            Line((63, 29.511911518), (63, 12))
            ThreePointArc((63, 12), (61.974873734, 9.525126266), (59.5, 8.5))
            Line((59.5, 8.5), (45.5, 8.5))
            ThreePointArc((45.5, 8.5), (43.025126266, 9.525126266), (42, 12))
            Line((42, 12), (42, 19.543118511))
            ThreePointArc((42, 19.543118511), (42.247506302, 20.835900295), (42.955019852, 21.945841143))
        make_face()
    extrude(amount=-CUT_EXTRUDE_5_DEPTH, mode=Mode.SUBTRACT)

    # 圆角4
    fillet_4_edges = [part.edges().sort_by_distance(p)[0] for p in [
        (35, 0, 2.755983064),
    ]]
    fillet(fillet_4_edges, radius=FILLET_4_R)


solid = part.part
